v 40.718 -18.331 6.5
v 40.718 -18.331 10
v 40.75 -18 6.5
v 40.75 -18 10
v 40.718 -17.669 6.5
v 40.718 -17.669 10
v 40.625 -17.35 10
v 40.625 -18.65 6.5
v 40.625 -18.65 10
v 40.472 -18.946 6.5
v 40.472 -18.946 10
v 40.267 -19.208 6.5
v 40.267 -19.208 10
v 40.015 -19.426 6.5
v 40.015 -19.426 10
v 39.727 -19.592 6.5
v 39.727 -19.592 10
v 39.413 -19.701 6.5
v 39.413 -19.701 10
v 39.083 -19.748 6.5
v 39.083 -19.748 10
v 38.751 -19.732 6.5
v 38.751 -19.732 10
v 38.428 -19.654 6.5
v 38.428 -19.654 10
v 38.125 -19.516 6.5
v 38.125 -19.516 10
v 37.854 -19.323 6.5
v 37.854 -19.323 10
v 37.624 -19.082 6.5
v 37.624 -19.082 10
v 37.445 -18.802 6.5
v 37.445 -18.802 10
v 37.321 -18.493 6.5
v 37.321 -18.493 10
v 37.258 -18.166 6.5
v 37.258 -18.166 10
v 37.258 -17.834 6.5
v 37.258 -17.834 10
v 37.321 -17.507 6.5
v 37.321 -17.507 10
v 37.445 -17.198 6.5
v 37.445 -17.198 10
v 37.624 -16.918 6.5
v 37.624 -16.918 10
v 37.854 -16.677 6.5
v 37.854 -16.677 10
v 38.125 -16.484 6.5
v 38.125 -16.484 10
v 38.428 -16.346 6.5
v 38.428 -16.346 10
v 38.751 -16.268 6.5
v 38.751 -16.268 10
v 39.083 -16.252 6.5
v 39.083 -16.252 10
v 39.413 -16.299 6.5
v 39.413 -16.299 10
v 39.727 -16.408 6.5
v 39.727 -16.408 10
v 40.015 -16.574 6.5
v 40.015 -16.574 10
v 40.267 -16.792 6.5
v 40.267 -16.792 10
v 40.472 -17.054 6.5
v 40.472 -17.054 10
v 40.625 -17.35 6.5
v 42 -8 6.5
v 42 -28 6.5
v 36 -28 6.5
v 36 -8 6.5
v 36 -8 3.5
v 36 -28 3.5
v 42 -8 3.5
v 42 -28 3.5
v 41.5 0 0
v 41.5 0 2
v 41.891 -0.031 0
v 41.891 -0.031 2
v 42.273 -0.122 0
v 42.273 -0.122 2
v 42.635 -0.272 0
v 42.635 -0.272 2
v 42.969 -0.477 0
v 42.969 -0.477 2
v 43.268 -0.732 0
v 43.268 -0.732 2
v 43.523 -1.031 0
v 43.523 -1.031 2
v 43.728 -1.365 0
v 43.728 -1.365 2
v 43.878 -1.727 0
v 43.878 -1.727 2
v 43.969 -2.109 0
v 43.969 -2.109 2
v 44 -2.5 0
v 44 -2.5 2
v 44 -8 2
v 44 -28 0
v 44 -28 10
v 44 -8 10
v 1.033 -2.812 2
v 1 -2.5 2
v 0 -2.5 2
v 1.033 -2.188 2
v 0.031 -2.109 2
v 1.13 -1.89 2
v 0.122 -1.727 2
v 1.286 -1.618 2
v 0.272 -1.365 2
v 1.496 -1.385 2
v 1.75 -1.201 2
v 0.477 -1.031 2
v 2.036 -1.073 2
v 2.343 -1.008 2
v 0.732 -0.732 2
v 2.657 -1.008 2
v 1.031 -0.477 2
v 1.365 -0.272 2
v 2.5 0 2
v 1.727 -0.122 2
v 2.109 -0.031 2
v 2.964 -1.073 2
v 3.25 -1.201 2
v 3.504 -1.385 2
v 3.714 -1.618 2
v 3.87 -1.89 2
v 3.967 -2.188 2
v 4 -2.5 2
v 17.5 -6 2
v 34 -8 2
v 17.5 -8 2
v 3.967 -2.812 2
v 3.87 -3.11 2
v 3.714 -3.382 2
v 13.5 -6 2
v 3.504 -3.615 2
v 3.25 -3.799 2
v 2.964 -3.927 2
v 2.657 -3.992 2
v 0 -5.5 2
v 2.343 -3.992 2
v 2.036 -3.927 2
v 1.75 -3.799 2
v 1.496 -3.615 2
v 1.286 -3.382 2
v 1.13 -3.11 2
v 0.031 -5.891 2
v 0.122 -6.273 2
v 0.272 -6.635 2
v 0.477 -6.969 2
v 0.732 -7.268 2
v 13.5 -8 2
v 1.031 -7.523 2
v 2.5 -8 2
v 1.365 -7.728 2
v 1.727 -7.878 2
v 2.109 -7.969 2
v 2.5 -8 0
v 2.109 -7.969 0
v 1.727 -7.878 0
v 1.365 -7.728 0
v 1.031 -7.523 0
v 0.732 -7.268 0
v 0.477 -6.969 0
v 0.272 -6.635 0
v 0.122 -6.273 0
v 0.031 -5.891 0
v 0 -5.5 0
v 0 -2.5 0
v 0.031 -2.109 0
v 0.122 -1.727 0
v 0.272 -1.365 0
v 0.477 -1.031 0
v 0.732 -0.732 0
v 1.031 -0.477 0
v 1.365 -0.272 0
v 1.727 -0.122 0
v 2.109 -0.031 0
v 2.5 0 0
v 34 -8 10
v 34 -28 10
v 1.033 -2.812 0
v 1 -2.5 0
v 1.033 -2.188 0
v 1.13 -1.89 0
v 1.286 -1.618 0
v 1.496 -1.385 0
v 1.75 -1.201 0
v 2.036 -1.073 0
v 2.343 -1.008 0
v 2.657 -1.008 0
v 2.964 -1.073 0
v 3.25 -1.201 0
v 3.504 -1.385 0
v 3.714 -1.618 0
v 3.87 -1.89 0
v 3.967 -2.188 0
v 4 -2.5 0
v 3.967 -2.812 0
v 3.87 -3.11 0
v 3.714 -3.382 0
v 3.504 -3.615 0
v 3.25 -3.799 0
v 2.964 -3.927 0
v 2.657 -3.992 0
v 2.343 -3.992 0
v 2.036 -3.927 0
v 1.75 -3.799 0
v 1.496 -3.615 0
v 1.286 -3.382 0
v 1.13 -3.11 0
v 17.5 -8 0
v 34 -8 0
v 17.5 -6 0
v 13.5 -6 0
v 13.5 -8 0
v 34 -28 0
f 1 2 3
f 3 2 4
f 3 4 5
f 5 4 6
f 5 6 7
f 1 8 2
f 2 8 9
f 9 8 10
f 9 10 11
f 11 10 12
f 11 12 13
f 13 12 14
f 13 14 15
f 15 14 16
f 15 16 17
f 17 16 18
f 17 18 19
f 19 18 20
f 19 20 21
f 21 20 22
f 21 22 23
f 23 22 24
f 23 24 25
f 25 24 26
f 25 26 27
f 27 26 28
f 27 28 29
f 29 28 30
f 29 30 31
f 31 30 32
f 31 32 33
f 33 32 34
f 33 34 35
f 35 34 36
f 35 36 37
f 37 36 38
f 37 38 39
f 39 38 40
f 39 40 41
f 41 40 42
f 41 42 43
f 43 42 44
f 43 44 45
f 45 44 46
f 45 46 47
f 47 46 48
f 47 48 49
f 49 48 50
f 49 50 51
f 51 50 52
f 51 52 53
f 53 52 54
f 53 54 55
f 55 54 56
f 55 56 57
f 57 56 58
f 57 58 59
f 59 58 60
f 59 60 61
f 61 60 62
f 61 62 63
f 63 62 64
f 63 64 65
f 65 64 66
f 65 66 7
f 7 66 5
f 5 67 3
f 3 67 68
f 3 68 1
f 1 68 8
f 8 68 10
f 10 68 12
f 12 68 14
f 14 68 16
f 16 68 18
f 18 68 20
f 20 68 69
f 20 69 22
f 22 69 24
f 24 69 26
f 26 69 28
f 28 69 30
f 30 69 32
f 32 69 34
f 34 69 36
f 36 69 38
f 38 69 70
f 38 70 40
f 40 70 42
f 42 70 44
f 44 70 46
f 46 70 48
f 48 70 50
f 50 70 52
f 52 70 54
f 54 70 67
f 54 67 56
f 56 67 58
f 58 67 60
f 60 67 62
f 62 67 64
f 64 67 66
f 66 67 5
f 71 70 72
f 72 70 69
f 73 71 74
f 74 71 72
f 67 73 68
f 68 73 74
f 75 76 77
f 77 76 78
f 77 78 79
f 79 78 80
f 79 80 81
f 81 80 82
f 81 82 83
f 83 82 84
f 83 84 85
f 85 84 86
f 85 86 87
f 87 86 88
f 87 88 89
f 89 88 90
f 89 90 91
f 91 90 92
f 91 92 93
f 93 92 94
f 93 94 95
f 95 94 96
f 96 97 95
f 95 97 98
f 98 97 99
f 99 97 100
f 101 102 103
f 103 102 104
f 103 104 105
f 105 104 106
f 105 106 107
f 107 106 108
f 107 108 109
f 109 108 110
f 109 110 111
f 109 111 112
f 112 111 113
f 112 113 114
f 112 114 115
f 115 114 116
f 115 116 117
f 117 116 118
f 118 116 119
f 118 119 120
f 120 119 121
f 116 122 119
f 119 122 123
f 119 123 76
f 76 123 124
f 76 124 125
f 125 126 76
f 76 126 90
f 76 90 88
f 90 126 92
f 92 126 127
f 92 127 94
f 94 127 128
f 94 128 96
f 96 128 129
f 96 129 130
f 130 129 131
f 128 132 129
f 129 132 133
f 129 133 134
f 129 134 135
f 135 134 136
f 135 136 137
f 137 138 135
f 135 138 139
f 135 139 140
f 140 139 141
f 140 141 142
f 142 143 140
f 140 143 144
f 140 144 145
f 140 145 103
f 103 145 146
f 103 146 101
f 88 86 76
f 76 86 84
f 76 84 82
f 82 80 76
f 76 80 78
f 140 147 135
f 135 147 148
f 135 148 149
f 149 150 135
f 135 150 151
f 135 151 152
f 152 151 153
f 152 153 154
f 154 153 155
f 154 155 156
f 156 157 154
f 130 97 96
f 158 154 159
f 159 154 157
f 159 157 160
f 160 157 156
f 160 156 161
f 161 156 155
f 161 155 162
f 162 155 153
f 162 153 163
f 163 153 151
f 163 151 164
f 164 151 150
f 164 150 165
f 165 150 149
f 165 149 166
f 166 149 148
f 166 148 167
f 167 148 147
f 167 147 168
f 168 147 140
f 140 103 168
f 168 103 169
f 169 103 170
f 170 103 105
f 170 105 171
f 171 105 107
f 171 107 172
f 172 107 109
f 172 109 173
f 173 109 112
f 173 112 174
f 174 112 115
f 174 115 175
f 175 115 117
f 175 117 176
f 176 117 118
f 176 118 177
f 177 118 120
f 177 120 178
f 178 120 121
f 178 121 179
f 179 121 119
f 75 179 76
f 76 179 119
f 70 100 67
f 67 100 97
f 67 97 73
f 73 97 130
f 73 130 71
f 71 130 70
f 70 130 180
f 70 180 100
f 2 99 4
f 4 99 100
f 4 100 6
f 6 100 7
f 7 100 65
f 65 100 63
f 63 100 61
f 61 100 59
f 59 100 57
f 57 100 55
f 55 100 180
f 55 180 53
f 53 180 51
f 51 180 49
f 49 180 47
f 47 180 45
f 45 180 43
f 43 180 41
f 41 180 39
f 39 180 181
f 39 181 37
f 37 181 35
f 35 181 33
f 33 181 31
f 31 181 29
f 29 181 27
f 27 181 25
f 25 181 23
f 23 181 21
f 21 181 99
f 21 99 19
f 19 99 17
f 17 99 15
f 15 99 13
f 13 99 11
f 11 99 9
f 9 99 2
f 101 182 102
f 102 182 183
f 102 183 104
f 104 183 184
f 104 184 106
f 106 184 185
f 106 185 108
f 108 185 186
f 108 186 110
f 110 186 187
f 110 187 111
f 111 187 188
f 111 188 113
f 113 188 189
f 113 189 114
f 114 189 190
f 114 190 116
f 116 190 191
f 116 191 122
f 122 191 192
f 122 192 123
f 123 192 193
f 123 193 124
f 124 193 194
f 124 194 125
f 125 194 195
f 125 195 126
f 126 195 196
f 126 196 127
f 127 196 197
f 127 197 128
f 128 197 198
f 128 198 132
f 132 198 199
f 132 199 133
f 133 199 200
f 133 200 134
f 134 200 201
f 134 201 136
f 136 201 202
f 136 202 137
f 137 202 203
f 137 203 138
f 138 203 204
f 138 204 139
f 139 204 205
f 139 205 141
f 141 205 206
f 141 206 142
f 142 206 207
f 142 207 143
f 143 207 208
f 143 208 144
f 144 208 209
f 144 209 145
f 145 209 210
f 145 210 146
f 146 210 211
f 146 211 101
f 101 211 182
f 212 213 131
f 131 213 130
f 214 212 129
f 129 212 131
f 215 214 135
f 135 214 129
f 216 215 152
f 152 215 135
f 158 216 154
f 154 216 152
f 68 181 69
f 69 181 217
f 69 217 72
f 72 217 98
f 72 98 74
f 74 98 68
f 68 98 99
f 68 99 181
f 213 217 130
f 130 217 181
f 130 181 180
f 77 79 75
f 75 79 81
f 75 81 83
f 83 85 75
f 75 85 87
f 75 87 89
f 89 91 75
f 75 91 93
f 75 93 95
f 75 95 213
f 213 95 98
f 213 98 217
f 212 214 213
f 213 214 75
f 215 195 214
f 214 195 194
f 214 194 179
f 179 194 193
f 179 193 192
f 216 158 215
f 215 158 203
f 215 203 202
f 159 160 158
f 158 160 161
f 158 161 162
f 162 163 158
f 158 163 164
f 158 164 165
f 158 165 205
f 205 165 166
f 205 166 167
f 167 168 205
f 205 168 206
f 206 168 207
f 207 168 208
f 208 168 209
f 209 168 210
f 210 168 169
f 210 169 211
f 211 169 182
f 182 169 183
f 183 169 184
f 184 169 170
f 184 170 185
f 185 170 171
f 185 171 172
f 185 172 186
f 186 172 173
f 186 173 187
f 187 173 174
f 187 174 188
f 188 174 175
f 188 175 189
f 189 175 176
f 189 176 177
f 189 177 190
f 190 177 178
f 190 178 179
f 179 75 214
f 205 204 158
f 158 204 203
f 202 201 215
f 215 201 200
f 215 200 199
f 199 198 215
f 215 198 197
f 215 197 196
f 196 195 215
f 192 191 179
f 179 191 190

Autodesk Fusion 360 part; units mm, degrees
sketch "Sketch1" plane through (0, 0, 0) normal (0, 0, 1) x (1, 0, 0)
  line L0 (0, 0) -> (44, 0)
  line L1 (44, 0) -> (44, -8)
  line L2 (44, -8) -> (0, -8)
  line L3 (0, -8) -> (0, 0)
  line L4 (44, -8) -> (34, -8)
  line L5 (34, -8) -> (34, -28)
  line L6 (34, -28) -> (44, -28)
  line L7 (44, -28) -> (44, -8)
  circle A0 centre (2.5, -2.5) radius 1.5
  line L8 (2.5, -2.5) -> (2.5, 0) construction
  line L9 (2.5, -2.5) -> (0, -2.5) construction
  line L10 (13.5, -8) -> (17.5, -8)
  line L11 (17.5, -8) -> (17.5, -6)
  line L12 (17.5, -6) -> (13.5, -6)
  line L13 (13.5, -6) -> (13.5, -8)
  point P0 (15.5, -6)
  dimension "d1" = 3
  dimension "d2" = 2.5
  dimension "d3" = 8
  dimension "d4" = 13
  dimension "d5" = 2
  dimension "d6" = 4
  dimension "d7" = 44
  dimension "d9" = 20
  dimension "d23" = 34
extrude "Extrude1" add sketch "Sketch1" along normal blind 2 contours L0 L1 L2 L3 L4 L11 L12 L13 | L2 L4 L5 L6 L7
extrude "Extrude2" add sketch "Sketch1" along normal blind 10 contours L2 L4 L5 L6 L7
fillet "Fillet1" radius 2.5 3 edges at (0, 0, 1) (0, -8, 1) (44, 0, 1)
sketch "Sketch2" plane through (0, -28, 0) normal (0, -1, 0) x (1, 0, 0)
  line L0 (34, 0) -> (44, 0)
  line L1 (44, 0) -> (44, 10)
  line L2 (44, 10) -> (34, 10)
  line L3 (34, 10) -> (34, 0)
  line L4 (34, 10) -> (44, 0) construction
  line L5 (36, 3.5) -> (42, 6.5) construction
  line L6 (36, 3.5) -> (42, 3.5)
  line L7 (42, 3.5) -> (42, 6.5)
  line L8 (42, 6.5) -> (36, 6.5)
  line L9 (36, 6.5) -> (36, 3.5)
  dimension "d17" = 6
  dimension "d18" = 3
extrude "Extrude3" cut sketch "Sketch2" against normal through all contours L6 L7 L8 L9
sketch "Sketch3" plane through (0, 0, 10) normal (0, 0, 1) x (-1, 0, 0)
  line L0 (-44, 28) -> (-44, 8)
  line L1 (-44, 8) -> (-34, 8)
  line L2 (-34, 8) -> (-34, 28)
  line L3 (-34, 28) -> (-44, 28)
  line L4 (-34, 8) -> (-44, 28) construction
  circle A0 centre (-39, 18) radius 1.75
  dimension "d20" = 3.5
extrude "Extrude4" cut sketch "Sketch3" against normal up to surface (6.5 mm away) contours A0
